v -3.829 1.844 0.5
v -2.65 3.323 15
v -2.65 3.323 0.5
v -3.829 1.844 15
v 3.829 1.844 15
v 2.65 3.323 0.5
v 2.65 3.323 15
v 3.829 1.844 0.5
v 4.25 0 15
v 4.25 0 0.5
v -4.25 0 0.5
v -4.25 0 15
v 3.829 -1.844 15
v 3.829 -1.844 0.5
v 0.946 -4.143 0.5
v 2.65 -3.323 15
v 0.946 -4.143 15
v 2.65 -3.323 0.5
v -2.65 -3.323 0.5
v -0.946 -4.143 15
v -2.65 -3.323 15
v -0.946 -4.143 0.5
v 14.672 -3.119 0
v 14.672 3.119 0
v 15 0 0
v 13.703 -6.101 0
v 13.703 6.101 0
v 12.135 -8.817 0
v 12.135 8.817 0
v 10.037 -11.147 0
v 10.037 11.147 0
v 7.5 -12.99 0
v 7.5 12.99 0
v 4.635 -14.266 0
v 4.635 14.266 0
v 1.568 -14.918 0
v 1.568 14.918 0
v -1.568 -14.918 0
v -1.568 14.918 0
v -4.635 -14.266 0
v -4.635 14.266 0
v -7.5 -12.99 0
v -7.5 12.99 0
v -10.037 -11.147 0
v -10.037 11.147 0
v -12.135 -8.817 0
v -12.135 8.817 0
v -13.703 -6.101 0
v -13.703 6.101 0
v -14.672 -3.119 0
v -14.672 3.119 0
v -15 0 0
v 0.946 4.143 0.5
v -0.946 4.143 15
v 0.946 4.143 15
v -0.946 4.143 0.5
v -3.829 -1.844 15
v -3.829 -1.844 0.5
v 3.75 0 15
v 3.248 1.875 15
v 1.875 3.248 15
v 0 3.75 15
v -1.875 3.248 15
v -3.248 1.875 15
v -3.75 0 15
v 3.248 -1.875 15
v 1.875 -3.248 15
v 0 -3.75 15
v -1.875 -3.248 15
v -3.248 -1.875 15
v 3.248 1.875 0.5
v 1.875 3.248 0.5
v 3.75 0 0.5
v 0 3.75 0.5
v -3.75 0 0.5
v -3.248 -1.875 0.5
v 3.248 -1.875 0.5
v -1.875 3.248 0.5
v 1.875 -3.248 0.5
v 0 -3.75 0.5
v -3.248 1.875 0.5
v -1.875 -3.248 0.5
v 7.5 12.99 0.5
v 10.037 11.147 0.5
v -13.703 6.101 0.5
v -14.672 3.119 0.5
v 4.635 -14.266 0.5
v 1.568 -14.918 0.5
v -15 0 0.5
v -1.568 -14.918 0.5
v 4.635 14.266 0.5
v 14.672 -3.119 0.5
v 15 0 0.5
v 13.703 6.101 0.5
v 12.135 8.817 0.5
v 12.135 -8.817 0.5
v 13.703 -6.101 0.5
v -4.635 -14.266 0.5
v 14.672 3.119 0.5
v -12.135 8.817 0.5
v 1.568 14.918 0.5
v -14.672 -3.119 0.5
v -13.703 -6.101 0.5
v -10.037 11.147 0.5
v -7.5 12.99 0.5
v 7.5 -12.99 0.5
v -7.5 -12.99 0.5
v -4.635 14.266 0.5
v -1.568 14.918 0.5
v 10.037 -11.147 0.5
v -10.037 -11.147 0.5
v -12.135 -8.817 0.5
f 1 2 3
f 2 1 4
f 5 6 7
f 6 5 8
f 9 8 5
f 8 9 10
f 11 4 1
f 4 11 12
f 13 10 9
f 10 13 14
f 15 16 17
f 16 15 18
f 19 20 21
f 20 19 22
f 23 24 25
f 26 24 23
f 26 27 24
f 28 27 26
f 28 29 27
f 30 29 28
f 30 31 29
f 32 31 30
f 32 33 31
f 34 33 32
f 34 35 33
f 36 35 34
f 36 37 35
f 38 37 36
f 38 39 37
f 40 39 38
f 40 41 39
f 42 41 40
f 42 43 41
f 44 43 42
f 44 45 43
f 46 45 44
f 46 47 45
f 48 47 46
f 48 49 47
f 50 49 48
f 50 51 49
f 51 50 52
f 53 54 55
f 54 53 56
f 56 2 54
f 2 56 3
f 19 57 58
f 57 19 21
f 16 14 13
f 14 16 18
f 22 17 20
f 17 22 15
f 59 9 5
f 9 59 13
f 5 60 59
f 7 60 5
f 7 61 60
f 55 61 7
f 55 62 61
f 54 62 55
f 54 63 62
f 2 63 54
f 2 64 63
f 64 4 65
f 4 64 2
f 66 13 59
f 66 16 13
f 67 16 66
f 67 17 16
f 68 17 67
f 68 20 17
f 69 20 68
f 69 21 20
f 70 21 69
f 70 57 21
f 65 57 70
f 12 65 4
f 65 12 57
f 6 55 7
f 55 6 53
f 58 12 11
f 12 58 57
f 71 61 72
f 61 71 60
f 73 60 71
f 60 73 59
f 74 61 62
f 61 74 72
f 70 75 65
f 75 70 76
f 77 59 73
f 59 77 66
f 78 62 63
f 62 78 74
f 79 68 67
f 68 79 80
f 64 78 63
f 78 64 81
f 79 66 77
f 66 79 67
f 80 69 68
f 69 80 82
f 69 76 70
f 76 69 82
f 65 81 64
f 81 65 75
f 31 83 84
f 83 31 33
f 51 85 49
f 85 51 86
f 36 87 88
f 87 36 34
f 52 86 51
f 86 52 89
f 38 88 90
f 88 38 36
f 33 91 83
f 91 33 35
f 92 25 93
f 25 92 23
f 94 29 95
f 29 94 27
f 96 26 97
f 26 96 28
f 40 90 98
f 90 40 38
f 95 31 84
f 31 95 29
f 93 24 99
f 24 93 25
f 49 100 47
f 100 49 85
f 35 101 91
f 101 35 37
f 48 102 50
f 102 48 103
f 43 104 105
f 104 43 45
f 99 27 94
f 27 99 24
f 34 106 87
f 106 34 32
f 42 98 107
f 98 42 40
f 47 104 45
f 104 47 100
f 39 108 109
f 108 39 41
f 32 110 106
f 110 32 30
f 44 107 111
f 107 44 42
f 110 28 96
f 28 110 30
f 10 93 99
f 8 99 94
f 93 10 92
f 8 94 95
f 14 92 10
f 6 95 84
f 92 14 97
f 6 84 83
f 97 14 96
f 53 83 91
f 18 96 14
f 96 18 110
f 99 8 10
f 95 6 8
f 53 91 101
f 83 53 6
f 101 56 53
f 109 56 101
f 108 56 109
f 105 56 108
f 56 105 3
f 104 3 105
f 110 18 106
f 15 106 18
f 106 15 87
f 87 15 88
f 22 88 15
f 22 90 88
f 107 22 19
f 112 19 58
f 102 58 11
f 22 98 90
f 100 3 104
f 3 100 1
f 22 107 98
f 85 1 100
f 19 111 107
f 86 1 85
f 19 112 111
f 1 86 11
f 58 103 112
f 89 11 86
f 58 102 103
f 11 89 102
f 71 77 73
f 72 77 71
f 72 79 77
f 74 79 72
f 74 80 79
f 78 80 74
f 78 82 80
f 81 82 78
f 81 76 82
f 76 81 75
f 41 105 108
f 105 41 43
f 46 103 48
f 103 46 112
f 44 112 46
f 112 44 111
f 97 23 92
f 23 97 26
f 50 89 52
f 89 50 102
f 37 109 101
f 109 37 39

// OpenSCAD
// file: ../../vars.scad
// style
carbonColor = "#3e4042";
plaColor = "#00ff00";


// arms
armLength = 500;
armBoxWidth = 12.5;
armBoxWallThickness = 0.5;
armFixingHoleDia = 4;

// central brackets
centralBracketWallThickness = 1;
centralBracketDepth = armBoxWidth / 2;

centralBracketTopPlateSize = 100;
centralBracketTopPlateThickness = 1;

centralBracketPlateSize = 50;
centralBracketPlateThickness = 1;

// landing gear
landingGearSpacing = 175;

landingGearLegLength = 75;
landingGearLegDia = 7.5;
landingGearLegWallThickness = 0.5;

landingGearFootThickness = 0.5;
landingGearFootDia = 30;
landingGearFootSocketHeight = 15;
landingGearFootSocketWallThickness = 0.5;

landingGearBracketWallThickness = 1;
landingGearBracketSocketWallThickness = 1;
landingGearBracketSocketHeight = 15;

// brain board
brainBoardSize = 150;
brainBoardThickness = 1;
brainBoardSpace = 20;
// main file
include<../../vars.scad>

module landingGearFoot(){
    color(plaColor) cylinder(h = landingGearFootThickness, d = landingGearFootDia);
    difference(){
        color(plaColor) cylinder(h = landingGearFootSocketHeight, d = landingGearFootSocketWallThickness * 2 + landingGearLegDia);
        cylinder(h = landingGearFootSocketHeight + 1, d = landingGearLegDia);
    };
};

landingGearFoot();
